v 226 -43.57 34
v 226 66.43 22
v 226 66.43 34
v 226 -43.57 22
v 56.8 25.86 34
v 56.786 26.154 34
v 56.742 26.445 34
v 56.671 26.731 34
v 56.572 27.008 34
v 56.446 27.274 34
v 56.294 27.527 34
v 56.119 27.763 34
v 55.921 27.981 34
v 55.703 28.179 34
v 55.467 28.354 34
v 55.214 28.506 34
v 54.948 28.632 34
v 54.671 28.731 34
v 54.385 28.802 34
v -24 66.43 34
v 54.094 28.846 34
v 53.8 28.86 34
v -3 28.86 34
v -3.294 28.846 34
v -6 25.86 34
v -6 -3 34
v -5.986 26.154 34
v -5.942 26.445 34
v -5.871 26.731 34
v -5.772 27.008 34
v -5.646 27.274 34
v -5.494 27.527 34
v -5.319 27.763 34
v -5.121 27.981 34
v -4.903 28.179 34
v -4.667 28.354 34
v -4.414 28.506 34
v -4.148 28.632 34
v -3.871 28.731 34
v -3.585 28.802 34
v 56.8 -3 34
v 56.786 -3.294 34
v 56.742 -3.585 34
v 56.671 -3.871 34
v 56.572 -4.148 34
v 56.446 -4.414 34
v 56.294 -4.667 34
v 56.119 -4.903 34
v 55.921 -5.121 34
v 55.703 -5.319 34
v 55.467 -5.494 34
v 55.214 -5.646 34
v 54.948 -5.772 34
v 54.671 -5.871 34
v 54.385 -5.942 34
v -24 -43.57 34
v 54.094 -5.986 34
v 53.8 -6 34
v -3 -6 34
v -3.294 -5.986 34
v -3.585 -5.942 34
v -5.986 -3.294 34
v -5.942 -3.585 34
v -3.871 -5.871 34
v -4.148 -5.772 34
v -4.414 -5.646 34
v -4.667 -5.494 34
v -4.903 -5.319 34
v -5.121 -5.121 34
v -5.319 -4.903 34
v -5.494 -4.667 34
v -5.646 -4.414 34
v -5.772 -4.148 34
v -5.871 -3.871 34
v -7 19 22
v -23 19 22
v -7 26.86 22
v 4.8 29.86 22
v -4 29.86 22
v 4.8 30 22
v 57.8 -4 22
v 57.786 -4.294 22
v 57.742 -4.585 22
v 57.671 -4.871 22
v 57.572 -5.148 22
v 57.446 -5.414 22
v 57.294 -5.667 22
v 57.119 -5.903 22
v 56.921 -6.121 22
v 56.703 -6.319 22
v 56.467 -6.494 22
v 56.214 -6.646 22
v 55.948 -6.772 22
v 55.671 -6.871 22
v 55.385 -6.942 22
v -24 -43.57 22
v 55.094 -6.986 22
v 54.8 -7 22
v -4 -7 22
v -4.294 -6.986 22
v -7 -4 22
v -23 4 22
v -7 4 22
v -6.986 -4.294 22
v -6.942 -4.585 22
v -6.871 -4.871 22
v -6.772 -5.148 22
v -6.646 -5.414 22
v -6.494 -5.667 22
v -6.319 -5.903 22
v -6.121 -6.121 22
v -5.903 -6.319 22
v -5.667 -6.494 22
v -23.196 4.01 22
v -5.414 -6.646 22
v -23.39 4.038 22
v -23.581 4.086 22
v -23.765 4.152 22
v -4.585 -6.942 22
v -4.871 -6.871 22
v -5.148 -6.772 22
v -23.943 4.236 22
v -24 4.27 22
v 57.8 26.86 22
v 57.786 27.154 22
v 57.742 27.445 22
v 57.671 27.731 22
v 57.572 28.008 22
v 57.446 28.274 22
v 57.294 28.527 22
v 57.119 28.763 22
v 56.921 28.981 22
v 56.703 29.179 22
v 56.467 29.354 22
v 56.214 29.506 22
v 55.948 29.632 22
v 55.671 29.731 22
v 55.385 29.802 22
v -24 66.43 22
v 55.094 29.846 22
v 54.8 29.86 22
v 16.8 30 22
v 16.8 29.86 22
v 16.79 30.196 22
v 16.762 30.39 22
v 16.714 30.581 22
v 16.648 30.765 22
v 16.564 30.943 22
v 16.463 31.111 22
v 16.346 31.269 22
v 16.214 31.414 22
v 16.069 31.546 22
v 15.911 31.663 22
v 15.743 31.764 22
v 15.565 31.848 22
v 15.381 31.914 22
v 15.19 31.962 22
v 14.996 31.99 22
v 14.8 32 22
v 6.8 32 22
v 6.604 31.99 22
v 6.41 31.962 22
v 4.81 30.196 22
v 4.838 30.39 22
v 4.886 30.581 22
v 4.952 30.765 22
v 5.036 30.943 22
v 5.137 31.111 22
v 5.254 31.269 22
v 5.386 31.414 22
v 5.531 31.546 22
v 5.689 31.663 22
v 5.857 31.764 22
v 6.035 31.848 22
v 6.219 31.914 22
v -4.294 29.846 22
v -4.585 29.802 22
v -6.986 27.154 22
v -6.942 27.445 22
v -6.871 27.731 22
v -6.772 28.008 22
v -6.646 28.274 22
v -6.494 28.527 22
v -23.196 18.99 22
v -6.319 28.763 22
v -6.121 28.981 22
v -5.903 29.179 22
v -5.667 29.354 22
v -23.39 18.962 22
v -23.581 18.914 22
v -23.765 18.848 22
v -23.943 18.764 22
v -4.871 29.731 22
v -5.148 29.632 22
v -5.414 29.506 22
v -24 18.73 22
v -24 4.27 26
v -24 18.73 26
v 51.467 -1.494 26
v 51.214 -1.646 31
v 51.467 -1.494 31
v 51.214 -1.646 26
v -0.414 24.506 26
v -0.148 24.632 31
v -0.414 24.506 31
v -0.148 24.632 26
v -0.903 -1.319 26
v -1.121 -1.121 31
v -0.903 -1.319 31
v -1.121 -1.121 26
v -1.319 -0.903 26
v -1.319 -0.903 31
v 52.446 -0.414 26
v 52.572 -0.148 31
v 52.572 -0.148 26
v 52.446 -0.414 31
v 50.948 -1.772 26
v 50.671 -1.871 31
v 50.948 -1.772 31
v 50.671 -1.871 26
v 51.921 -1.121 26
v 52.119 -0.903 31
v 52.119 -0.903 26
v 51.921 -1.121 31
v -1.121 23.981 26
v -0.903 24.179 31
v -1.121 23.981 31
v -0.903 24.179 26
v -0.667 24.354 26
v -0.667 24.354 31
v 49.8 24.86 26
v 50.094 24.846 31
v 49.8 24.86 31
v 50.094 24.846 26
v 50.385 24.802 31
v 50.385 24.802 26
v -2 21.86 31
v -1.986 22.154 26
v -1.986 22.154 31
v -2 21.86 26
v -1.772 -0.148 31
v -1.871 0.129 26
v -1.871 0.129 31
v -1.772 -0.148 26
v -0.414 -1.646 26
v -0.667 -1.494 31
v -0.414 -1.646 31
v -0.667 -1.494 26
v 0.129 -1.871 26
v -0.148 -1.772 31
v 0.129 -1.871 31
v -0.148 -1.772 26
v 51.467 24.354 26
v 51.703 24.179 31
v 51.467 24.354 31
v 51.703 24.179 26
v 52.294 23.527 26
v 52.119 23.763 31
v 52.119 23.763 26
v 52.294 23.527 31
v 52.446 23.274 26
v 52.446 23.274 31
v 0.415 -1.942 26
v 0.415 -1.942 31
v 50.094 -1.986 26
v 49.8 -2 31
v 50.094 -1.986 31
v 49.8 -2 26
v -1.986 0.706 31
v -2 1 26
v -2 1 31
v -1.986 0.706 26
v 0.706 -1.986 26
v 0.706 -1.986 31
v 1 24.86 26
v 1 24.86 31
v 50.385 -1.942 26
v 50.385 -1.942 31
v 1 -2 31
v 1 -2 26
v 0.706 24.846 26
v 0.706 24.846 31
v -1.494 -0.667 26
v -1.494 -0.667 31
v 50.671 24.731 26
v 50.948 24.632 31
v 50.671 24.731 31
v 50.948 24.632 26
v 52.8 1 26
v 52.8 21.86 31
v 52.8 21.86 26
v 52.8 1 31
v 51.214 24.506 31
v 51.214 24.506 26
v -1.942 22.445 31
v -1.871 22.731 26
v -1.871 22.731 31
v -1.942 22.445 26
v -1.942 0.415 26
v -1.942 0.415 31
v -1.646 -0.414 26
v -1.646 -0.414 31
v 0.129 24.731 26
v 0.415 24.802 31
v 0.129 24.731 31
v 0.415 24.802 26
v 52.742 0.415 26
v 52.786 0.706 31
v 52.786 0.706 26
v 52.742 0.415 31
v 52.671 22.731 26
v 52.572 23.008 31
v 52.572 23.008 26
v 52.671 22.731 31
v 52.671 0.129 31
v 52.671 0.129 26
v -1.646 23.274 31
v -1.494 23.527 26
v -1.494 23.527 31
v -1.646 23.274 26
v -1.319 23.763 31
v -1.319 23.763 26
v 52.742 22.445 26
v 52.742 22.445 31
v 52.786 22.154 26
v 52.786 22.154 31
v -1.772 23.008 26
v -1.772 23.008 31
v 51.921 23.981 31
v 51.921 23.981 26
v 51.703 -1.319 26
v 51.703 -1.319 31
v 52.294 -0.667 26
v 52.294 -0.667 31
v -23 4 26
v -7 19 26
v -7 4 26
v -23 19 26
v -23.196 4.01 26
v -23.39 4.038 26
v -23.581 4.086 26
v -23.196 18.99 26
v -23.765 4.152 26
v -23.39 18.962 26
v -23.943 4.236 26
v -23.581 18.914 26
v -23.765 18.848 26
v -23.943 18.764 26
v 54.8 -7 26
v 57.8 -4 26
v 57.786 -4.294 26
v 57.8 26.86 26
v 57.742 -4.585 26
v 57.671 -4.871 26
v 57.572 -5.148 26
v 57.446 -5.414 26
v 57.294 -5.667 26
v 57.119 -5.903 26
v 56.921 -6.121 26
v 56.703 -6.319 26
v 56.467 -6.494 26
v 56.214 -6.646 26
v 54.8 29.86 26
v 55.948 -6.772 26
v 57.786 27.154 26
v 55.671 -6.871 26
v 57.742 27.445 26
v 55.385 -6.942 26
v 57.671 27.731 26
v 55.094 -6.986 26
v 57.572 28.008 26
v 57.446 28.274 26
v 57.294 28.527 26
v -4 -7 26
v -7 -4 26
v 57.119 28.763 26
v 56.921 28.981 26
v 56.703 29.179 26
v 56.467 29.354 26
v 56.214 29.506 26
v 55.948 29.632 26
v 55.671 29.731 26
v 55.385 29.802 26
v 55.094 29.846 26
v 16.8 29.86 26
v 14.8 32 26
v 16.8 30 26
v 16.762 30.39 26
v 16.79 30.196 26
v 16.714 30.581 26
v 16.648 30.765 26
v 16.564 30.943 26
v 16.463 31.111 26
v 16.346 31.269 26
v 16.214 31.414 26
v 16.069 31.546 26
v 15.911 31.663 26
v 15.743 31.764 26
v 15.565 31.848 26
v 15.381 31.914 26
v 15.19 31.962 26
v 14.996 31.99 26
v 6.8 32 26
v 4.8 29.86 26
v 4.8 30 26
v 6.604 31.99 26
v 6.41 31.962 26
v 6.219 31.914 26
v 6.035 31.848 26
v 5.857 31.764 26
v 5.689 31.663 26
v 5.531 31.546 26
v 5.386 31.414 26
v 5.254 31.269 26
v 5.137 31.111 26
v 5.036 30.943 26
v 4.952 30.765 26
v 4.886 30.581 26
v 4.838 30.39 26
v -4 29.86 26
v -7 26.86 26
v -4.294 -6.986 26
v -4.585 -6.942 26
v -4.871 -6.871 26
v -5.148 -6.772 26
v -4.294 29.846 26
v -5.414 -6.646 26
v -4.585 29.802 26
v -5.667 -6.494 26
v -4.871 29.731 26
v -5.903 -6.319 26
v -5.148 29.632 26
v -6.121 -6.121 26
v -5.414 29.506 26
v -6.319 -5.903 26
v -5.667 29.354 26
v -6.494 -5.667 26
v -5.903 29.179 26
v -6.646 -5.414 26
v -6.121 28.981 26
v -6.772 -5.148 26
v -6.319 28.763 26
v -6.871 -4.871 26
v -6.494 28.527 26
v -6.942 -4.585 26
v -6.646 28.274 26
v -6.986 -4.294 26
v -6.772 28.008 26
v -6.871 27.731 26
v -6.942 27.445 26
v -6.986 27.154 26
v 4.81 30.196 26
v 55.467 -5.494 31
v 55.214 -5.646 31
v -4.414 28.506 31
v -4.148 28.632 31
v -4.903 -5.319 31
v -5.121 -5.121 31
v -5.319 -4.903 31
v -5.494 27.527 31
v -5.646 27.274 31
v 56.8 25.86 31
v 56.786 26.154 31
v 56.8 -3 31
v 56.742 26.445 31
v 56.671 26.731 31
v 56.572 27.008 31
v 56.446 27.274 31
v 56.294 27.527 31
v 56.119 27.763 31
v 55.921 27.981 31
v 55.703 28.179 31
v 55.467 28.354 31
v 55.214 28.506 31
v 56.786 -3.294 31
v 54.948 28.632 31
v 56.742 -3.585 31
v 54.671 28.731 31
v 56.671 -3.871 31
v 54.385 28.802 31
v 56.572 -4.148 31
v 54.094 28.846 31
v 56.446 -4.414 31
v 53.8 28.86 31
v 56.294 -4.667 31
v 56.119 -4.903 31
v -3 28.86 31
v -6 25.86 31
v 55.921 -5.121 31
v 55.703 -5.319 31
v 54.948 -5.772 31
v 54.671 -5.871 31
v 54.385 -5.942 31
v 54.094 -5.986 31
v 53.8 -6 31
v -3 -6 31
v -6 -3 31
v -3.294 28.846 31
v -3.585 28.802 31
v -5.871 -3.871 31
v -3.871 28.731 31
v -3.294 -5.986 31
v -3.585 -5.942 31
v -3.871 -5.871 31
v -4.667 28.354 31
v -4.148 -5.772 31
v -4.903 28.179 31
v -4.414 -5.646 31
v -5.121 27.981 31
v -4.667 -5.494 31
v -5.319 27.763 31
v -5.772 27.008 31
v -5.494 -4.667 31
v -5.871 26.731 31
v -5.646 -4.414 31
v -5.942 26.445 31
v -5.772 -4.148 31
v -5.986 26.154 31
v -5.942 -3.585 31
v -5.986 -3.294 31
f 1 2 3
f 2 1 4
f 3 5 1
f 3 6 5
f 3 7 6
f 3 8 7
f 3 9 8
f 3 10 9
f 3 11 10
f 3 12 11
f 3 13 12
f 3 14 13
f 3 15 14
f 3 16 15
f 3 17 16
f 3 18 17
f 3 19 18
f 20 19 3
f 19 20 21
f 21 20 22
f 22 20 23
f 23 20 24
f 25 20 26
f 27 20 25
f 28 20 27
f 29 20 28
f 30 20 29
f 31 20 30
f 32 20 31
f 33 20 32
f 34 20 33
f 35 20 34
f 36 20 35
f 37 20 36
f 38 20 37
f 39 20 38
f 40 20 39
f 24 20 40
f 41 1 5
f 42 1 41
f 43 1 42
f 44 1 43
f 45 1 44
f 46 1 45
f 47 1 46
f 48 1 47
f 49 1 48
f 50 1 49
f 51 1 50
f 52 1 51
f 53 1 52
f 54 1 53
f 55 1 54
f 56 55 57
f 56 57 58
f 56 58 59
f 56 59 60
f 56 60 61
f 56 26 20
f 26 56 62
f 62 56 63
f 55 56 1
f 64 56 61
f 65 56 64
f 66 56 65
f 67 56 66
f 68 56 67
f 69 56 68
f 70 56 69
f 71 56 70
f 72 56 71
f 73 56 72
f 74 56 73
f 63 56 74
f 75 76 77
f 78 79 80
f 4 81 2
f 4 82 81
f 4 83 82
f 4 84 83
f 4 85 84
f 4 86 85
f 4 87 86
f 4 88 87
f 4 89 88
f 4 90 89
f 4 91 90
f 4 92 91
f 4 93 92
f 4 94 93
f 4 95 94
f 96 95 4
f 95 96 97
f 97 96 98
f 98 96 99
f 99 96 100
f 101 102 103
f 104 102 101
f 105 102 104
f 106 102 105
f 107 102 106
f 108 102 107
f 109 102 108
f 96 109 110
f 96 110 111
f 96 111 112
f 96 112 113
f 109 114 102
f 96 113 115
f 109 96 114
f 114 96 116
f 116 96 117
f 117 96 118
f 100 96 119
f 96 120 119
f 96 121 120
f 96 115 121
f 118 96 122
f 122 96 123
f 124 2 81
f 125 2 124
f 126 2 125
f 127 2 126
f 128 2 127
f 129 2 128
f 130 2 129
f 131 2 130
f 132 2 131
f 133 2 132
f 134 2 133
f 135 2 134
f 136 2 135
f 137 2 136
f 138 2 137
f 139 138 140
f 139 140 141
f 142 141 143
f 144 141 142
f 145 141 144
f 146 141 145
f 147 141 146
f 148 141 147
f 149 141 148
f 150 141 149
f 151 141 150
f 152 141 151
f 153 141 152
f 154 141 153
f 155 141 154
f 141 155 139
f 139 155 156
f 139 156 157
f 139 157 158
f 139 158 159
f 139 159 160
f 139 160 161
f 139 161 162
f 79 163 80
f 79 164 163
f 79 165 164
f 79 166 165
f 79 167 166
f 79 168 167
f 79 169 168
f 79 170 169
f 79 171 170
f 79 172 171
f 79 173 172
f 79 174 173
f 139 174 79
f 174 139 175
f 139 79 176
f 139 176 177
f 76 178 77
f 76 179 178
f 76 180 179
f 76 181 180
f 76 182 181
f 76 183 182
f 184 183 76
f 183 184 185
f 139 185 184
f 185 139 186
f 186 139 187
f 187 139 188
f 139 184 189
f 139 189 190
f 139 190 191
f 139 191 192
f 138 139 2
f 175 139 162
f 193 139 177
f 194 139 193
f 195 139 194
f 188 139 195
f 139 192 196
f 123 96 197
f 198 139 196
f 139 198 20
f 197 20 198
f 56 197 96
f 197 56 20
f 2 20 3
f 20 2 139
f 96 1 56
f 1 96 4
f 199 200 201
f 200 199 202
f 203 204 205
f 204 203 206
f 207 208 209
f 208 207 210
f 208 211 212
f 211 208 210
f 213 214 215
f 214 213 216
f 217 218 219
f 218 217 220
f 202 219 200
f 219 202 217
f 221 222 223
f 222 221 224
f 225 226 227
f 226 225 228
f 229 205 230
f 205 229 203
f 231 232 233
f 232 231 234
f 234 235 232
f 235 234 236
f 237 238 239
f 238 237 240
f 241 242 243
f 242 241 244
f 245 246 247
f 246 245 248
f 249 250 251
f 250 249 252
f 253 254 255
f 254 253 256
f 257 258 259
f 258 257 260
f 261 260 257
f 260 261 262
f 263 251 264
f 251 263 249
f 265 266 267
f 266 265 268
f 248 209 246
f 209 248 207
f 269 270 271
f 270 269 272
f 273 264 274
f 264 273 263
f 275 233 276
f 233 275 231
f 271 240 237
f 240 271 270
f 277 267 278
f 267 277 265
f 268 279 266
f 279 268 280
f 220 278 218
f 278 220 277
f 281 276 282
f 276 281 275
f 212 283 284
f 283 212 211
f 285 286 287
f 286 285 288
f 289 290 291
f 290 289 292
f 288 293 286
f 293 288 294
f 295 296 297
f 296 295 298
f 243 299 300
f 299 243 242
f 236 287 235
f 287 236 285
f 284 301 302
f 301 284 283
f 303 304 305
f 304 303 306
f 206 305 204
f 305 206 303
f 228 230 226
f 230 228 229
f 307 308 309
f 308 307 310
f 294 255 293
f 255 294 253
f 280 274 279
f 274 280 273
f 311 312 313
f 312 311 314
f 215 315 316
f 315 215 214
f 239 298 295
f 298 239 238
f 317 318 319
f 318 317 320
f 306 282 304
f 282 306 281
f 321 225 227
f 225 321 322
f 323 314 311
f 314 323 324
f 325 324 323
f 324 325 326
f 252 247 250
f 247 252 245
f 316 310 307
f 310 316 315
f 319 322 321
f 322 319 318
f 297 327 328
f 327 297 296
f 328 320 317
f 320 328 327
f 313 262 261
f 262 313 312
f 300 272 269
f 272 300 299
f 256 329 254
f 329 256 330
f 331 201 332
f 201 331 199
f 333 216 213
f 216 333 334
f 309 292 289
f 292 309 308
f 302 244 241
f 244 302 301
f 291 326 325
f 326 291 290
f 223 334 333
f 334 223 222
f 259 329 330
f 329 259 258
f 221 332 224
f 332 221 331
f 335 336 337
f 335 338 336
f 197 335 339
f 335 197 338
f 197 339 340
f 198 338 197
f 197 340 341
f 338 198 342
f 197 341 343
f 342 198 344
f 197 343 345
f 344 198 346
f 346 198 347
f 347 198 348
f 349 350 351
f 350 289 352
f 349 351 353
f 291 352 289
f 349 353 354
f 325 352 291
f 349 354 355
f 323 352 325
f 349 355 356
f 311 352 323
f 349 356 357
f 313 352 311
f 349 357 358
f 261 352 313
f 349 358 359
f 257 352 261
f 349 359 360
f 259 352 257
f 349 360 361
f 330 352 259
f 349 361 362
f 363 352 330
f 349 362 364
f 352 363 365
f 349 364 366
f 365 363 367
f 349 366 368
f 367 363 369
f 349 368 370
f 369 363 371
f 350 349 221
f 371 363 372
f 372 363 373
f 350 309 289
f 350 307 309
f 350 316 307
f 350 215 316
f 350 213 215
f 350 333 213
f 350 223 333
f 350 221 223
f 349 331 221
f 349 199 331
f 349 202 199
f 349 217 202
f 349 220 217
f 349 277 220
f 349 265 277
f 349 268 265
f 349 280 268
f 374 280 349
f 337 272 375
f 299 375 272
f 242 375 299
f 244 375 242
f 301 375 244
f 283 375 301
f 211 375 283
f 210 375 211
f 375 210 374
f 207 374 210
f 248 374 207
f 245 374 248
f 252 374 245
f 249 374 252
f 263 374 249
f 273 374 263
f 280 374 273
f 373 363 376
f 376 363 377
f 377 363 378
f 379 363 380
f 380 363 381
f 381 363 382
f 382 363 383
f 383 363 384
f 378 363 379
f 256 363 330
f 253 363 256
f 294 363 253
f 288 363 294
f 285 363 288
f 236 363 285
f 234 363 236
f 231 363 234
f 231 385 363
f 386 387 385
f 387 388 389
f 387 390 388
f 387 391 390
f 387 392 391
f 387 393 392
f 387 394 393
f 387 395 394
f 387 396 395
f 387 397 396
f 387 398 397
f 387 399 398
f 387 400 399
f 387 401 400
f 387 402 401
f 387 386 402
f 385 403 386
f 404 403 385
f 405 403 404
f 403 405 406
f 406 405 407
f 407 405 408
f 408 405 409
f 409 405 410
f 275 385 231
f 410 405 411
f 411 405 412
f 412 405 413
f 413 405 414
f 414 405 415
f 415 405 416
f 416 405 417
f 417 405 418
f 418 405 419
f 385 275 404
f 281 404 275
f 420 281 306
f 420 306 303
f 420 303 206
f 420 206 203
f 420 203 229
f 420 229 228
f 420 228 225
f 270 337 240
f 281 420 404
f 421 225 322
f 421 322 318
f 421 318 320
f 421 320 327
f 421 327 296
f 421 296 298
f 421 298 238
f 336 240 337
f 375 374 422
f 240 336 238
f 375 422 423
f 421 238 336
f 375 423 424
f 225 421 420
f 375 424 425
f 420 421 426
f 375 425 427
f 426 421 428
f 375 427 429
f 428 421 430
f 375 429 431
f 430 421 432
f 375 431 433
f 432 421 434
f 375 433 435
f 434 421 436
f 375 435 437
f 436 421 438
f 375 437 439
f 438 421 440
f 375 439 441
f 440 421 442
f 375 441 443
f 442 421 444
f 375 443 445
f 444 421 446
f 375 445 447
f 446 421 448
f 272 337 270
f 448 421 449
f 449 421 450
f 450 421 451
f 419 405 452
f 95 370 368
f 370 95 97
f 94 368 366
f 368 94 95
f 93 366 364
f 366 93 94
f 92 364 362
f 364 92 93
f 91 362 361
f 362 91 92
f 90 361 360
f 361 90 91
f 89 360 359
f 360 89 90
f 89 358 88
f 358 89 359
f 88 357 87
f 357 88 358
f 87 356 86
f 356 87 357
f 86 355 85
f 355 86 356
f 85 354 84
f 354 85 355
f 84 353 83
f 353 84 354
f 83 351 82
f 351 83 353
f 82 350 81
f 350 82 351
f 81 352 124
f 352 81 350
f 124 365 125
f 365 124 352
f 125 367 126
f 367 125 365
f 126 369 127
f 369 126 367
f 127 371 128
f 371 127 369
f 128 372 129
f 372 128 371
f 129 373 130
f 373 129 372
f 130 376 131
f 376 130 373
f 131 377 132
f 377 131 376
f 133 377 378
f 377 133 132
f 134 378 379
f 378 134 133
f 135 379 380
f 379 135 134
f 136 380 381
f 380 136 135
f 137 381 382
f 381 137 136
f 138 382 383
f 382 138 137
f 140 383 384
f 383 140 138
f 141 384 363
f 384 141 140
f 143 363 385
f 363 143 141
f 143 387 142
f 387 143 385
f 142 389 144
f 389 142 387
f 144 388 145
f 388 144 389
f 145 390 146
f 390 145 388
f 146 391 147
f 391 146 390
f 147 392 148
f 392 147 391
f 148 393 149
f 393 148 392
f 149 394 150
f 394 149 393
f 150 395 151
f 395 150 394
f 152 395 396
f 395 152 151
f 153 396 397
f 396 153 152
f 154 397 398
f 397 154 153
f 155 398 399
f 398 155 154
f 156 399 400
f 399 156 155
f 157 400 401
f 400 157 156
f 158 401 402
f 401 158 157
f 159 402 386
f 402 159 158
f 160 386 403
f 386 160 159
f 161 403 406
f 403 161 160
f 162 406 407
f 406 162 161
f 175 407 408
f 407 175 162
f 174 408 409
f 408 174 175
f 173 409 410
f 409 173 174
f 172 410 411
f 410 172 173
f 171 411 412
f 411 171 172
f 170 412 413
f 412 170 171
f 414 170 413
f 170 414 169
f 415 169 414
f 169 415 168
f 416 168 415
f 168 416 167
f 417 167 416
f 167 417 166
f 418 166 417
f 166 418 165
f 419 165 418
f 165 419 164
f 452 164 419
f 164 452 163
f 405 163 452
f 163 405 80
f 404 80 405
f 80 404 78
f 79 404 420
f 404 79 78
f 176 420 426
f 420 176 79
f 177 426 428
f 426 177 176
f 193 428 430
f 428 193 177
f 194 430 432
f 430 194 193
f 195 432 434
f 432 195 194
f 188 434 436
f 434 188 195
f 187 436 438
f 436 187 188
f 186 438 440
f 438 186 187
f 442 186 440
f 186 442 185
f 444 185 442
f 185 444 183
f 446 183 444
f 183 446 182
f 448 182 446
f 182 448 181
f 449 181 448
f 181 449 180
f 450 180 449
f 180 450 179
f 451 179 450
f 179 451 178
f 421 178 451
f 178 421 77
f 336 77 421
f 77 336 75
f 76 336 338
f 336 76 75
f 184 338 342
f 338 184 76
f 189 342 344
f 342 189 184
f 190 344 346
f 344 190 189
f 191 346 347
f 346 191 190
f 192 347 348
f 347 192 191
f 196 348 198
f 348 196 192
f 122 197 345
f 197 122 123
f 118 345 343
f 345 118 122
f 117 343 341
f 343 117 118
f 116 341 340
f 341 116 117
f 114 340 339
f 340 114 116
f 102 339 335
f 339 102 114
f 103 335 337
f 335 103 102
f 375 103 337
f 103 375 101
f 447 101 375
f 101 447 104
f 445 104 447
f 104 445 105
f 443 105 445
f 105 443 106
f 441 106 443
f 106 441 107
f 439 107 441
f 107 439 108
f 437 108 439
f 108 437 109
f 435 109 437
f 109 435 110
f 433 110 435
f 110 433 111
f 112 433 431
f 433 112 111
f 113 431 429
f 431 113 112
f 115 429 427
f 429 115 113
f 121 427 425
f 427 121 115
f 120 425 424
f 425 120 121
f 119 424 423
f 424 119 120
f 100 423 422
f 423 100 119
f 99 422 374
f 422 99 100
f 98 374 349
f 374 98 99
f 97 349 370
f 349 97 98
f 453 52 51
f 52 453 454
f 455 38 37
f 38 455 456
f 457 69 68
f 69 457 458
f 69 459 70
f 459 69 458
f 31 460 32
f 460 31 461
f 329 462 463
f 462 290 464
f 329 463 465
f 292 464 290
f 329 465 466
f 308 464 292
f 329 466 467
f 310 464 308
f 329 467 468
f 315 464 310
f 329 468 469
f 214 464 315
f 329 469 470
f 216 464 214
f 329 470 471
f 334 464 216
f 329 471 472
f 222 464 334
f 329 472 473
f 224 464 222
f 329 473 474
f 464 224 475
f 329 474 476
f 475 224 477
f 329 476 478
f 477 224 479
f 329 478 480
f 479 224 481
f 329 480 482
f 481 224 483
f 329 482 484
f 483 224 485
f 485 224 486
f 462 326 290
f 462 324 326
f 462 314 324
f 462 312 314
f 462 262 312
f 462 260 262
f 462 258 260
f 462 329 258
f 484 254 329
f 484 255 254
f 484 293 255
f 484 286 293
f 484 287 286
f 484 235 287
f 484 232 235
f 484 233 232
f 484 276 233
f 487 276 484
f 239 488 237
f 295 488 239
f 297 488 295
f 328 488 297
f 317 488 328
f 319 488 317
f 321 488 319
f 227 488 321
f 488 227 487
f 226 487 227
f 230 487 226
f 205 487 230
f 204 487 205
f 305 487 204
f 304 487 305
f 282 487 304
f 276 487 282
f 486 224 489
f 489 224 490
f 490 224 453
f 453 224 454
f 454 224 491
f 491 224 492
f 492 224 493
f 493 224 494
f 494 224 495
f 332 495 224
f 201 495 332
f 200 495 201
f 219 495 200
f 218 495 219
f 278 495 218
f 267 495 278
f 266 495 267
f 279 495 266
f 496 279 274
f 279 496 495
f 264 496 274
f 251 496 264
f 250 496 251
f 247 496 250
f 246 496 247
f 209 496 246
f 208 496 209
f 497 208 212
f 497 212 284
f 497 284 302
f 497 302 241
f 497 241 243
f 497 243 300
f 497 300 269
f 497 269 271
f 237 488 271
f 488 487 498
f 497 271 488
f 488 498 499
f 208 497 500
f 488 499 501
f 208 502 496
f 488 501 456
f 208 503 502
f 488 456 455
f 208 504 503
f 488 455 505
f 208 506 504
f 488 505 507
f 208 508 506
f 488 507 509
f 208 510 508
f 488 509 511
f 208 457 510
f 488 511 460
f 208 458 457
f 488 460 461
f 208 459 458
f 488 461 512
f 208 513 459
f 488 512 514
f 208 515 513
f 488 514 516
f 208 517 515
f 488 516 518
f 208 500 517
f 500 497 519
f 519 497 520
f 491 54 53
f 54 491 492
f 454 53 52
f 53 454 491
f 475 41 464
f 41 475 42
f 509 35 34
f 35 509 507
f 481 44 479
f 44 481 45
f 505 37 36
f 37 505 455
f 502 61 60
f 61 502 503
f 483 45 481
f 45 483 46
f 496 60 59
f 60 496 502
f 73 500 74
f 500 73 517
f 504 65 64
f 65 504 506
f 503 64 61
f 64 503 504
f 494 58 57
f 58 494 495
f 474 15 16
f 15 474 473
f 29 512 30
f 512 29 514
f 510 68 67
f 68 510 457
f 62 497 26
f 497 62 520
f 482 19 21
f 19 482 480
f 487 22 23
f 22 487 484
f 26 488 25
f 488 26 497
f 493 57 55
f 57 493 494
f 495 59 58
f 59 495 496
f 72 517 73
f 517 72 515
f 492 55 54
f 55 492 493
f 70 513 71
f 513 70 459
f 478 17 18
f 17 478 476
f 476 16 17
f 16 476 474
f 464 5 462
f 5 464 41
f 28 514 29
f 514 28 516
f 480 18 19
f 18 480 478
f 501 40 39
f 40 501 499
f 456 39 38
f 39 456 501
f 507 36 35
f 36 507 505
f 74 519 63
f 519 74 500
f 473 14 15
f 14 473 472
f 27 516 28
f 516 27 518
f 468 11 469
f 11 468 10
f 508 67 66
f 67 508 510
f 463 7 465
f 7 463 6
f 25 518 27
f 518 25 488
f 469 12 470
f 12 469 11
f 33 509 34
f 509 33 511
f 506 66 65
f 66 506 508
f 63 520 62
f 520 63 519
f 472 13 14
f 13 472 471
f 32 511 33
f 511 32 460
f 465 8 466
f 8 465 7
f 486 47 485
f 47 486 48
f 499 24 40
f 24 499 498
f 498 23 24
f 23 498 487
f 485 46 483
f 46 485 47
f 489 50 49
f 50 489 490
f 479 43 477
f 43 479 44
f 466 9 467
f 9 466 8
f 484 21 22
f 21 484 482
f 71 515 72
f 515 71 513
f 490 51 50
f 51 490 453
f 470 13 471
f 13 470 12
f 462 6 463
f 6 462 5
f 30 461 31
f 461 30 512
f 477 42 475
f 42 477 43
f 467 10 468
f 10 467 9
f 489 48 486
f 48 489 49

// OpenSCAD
// file: window_geometry.scad
// Shared CNC/print interface, mm. Draft dimensions, not physical approval.
// Local +z points outside. USB at x=0, toward box right (inside view).
wood_contact_z = 22;
wood_h = 12;
plexi_h = 3;
board_z = 24;
fit_clearance = 0.20; // PER SIDE; calibrate actual printer/material/wood
pocket_depth = 4;
guide_height = 3;
guide_wall = 3;
lead_in = 0.4;
lead_height = 0.6;
pocket = [-7,-7,64.8,36.86];
pocket_r = 3; // CNC cutter diameter <=6 mm
opening = [-2,-2,54.8,26.86];
opening_r = 3;
glass_rebate = [-6,-6,62.8,34.86];
glass_r = 3;
glass_clearance = 0.2; // per side, also an untested allowance
panel_origin = [-24,-43.57];
panel_size = [250,110]; // front elevation, outside box width x height
wood_points = [[25.4,-17],[25.4,39.86]];
assert(fit_clearance > 0 && fit_clearance < 0.6);
assert(guide_height < pocket_depth);
assert(pocket_depth + plexi_h < wood_h);
module window_profile(rect, radius=3, inset=0) {
    translate([rect[0]+radius,rect[1]+radius])
        offset(r=radius-inset)
            square([rect[2]-2*radius,rect[3]-2*radius]);
}
module pocket_profile(inset=0) { window_profile(pocket,pocket_r,inset); }
// Same-depth reliefs, BETWEEN the guiding corners. USB exits to box side.
module machining_pocket_profile() {
    union() {
        pocket_profile();
        window_profile([-25,4,20,15],2); // open inner USB channel to panel edge
        window_profile([4.8,27,12,5],2); // JST cable sweep, beyond guide rectangle
    }
}
module opening_profile() { window_profile(opening,opening_r); }
module glass_profile(inset=0) { window_profile(glass_rebate,glass_r,inset); }
// main file
// CNC proposal: full front + inner locating pocket + outer glass rabbet.
// Includes NO box joints, side-wall USB opening or screw pilot holes.
include <window_geometry.scad>
$fn=64;
part="panel"; // panel | pocket | opening | rebate | glass | local
// 2D outputs are actual cutter boundaries, no tool-radius compensation.
module front_panel() {
    difference() {
        translate([panel_origin[0],panel_origin[1],wood_contact_z])
            cube([panel_size[0],panel_size[1],wood_h]);
        translate([0,0,wood_contact_z-0.02])
            linear_extrude(wood_h+0.04) opening_profile();
        translate([0,0,wood_contact_z-0.02])
            linear_extrude(pocket_depth+0.02) machining_pocket_profile();
        translate([0,0,wood_contact_z+wood_h-plexi_h])
            linear_extrude(plexi_h+0.02) glass_profile();
    }
}
module window_glass() {
    translate([0,0,wood_contact_z+wood_h-plexi_h])
        linear_extrude(plexi_h) glass_profile(glass_clearance);
}
module local_panel() {
    intersection() {
        front_panel();
        translate([-24,-31,wood_contact_z-0.02]) cube([92,85,wood_h+0.04]);
    }
}
if(part=="panel") color([0.65,0.42,0.22]) front_panel();
if(part=="local") color([0.65,0.42,0.22]) local_panel();
// Turn the inside upward ONLY for a well-lit preview; CNC files stay unchanged.
if(part=="inner-view") color([0.65,0.42,0.22])
    translate([0,22.86,2*(wood_contact_z+wood_h/2)])
        rotate([180,0,0]) local_panel();
if(part=="pocket") machining_pocket_profile();
if(part=="opening") opening_profile();
if(part=="rebate") glass_profile();
if(part=="glass") glass_profile(glass_clearance);
